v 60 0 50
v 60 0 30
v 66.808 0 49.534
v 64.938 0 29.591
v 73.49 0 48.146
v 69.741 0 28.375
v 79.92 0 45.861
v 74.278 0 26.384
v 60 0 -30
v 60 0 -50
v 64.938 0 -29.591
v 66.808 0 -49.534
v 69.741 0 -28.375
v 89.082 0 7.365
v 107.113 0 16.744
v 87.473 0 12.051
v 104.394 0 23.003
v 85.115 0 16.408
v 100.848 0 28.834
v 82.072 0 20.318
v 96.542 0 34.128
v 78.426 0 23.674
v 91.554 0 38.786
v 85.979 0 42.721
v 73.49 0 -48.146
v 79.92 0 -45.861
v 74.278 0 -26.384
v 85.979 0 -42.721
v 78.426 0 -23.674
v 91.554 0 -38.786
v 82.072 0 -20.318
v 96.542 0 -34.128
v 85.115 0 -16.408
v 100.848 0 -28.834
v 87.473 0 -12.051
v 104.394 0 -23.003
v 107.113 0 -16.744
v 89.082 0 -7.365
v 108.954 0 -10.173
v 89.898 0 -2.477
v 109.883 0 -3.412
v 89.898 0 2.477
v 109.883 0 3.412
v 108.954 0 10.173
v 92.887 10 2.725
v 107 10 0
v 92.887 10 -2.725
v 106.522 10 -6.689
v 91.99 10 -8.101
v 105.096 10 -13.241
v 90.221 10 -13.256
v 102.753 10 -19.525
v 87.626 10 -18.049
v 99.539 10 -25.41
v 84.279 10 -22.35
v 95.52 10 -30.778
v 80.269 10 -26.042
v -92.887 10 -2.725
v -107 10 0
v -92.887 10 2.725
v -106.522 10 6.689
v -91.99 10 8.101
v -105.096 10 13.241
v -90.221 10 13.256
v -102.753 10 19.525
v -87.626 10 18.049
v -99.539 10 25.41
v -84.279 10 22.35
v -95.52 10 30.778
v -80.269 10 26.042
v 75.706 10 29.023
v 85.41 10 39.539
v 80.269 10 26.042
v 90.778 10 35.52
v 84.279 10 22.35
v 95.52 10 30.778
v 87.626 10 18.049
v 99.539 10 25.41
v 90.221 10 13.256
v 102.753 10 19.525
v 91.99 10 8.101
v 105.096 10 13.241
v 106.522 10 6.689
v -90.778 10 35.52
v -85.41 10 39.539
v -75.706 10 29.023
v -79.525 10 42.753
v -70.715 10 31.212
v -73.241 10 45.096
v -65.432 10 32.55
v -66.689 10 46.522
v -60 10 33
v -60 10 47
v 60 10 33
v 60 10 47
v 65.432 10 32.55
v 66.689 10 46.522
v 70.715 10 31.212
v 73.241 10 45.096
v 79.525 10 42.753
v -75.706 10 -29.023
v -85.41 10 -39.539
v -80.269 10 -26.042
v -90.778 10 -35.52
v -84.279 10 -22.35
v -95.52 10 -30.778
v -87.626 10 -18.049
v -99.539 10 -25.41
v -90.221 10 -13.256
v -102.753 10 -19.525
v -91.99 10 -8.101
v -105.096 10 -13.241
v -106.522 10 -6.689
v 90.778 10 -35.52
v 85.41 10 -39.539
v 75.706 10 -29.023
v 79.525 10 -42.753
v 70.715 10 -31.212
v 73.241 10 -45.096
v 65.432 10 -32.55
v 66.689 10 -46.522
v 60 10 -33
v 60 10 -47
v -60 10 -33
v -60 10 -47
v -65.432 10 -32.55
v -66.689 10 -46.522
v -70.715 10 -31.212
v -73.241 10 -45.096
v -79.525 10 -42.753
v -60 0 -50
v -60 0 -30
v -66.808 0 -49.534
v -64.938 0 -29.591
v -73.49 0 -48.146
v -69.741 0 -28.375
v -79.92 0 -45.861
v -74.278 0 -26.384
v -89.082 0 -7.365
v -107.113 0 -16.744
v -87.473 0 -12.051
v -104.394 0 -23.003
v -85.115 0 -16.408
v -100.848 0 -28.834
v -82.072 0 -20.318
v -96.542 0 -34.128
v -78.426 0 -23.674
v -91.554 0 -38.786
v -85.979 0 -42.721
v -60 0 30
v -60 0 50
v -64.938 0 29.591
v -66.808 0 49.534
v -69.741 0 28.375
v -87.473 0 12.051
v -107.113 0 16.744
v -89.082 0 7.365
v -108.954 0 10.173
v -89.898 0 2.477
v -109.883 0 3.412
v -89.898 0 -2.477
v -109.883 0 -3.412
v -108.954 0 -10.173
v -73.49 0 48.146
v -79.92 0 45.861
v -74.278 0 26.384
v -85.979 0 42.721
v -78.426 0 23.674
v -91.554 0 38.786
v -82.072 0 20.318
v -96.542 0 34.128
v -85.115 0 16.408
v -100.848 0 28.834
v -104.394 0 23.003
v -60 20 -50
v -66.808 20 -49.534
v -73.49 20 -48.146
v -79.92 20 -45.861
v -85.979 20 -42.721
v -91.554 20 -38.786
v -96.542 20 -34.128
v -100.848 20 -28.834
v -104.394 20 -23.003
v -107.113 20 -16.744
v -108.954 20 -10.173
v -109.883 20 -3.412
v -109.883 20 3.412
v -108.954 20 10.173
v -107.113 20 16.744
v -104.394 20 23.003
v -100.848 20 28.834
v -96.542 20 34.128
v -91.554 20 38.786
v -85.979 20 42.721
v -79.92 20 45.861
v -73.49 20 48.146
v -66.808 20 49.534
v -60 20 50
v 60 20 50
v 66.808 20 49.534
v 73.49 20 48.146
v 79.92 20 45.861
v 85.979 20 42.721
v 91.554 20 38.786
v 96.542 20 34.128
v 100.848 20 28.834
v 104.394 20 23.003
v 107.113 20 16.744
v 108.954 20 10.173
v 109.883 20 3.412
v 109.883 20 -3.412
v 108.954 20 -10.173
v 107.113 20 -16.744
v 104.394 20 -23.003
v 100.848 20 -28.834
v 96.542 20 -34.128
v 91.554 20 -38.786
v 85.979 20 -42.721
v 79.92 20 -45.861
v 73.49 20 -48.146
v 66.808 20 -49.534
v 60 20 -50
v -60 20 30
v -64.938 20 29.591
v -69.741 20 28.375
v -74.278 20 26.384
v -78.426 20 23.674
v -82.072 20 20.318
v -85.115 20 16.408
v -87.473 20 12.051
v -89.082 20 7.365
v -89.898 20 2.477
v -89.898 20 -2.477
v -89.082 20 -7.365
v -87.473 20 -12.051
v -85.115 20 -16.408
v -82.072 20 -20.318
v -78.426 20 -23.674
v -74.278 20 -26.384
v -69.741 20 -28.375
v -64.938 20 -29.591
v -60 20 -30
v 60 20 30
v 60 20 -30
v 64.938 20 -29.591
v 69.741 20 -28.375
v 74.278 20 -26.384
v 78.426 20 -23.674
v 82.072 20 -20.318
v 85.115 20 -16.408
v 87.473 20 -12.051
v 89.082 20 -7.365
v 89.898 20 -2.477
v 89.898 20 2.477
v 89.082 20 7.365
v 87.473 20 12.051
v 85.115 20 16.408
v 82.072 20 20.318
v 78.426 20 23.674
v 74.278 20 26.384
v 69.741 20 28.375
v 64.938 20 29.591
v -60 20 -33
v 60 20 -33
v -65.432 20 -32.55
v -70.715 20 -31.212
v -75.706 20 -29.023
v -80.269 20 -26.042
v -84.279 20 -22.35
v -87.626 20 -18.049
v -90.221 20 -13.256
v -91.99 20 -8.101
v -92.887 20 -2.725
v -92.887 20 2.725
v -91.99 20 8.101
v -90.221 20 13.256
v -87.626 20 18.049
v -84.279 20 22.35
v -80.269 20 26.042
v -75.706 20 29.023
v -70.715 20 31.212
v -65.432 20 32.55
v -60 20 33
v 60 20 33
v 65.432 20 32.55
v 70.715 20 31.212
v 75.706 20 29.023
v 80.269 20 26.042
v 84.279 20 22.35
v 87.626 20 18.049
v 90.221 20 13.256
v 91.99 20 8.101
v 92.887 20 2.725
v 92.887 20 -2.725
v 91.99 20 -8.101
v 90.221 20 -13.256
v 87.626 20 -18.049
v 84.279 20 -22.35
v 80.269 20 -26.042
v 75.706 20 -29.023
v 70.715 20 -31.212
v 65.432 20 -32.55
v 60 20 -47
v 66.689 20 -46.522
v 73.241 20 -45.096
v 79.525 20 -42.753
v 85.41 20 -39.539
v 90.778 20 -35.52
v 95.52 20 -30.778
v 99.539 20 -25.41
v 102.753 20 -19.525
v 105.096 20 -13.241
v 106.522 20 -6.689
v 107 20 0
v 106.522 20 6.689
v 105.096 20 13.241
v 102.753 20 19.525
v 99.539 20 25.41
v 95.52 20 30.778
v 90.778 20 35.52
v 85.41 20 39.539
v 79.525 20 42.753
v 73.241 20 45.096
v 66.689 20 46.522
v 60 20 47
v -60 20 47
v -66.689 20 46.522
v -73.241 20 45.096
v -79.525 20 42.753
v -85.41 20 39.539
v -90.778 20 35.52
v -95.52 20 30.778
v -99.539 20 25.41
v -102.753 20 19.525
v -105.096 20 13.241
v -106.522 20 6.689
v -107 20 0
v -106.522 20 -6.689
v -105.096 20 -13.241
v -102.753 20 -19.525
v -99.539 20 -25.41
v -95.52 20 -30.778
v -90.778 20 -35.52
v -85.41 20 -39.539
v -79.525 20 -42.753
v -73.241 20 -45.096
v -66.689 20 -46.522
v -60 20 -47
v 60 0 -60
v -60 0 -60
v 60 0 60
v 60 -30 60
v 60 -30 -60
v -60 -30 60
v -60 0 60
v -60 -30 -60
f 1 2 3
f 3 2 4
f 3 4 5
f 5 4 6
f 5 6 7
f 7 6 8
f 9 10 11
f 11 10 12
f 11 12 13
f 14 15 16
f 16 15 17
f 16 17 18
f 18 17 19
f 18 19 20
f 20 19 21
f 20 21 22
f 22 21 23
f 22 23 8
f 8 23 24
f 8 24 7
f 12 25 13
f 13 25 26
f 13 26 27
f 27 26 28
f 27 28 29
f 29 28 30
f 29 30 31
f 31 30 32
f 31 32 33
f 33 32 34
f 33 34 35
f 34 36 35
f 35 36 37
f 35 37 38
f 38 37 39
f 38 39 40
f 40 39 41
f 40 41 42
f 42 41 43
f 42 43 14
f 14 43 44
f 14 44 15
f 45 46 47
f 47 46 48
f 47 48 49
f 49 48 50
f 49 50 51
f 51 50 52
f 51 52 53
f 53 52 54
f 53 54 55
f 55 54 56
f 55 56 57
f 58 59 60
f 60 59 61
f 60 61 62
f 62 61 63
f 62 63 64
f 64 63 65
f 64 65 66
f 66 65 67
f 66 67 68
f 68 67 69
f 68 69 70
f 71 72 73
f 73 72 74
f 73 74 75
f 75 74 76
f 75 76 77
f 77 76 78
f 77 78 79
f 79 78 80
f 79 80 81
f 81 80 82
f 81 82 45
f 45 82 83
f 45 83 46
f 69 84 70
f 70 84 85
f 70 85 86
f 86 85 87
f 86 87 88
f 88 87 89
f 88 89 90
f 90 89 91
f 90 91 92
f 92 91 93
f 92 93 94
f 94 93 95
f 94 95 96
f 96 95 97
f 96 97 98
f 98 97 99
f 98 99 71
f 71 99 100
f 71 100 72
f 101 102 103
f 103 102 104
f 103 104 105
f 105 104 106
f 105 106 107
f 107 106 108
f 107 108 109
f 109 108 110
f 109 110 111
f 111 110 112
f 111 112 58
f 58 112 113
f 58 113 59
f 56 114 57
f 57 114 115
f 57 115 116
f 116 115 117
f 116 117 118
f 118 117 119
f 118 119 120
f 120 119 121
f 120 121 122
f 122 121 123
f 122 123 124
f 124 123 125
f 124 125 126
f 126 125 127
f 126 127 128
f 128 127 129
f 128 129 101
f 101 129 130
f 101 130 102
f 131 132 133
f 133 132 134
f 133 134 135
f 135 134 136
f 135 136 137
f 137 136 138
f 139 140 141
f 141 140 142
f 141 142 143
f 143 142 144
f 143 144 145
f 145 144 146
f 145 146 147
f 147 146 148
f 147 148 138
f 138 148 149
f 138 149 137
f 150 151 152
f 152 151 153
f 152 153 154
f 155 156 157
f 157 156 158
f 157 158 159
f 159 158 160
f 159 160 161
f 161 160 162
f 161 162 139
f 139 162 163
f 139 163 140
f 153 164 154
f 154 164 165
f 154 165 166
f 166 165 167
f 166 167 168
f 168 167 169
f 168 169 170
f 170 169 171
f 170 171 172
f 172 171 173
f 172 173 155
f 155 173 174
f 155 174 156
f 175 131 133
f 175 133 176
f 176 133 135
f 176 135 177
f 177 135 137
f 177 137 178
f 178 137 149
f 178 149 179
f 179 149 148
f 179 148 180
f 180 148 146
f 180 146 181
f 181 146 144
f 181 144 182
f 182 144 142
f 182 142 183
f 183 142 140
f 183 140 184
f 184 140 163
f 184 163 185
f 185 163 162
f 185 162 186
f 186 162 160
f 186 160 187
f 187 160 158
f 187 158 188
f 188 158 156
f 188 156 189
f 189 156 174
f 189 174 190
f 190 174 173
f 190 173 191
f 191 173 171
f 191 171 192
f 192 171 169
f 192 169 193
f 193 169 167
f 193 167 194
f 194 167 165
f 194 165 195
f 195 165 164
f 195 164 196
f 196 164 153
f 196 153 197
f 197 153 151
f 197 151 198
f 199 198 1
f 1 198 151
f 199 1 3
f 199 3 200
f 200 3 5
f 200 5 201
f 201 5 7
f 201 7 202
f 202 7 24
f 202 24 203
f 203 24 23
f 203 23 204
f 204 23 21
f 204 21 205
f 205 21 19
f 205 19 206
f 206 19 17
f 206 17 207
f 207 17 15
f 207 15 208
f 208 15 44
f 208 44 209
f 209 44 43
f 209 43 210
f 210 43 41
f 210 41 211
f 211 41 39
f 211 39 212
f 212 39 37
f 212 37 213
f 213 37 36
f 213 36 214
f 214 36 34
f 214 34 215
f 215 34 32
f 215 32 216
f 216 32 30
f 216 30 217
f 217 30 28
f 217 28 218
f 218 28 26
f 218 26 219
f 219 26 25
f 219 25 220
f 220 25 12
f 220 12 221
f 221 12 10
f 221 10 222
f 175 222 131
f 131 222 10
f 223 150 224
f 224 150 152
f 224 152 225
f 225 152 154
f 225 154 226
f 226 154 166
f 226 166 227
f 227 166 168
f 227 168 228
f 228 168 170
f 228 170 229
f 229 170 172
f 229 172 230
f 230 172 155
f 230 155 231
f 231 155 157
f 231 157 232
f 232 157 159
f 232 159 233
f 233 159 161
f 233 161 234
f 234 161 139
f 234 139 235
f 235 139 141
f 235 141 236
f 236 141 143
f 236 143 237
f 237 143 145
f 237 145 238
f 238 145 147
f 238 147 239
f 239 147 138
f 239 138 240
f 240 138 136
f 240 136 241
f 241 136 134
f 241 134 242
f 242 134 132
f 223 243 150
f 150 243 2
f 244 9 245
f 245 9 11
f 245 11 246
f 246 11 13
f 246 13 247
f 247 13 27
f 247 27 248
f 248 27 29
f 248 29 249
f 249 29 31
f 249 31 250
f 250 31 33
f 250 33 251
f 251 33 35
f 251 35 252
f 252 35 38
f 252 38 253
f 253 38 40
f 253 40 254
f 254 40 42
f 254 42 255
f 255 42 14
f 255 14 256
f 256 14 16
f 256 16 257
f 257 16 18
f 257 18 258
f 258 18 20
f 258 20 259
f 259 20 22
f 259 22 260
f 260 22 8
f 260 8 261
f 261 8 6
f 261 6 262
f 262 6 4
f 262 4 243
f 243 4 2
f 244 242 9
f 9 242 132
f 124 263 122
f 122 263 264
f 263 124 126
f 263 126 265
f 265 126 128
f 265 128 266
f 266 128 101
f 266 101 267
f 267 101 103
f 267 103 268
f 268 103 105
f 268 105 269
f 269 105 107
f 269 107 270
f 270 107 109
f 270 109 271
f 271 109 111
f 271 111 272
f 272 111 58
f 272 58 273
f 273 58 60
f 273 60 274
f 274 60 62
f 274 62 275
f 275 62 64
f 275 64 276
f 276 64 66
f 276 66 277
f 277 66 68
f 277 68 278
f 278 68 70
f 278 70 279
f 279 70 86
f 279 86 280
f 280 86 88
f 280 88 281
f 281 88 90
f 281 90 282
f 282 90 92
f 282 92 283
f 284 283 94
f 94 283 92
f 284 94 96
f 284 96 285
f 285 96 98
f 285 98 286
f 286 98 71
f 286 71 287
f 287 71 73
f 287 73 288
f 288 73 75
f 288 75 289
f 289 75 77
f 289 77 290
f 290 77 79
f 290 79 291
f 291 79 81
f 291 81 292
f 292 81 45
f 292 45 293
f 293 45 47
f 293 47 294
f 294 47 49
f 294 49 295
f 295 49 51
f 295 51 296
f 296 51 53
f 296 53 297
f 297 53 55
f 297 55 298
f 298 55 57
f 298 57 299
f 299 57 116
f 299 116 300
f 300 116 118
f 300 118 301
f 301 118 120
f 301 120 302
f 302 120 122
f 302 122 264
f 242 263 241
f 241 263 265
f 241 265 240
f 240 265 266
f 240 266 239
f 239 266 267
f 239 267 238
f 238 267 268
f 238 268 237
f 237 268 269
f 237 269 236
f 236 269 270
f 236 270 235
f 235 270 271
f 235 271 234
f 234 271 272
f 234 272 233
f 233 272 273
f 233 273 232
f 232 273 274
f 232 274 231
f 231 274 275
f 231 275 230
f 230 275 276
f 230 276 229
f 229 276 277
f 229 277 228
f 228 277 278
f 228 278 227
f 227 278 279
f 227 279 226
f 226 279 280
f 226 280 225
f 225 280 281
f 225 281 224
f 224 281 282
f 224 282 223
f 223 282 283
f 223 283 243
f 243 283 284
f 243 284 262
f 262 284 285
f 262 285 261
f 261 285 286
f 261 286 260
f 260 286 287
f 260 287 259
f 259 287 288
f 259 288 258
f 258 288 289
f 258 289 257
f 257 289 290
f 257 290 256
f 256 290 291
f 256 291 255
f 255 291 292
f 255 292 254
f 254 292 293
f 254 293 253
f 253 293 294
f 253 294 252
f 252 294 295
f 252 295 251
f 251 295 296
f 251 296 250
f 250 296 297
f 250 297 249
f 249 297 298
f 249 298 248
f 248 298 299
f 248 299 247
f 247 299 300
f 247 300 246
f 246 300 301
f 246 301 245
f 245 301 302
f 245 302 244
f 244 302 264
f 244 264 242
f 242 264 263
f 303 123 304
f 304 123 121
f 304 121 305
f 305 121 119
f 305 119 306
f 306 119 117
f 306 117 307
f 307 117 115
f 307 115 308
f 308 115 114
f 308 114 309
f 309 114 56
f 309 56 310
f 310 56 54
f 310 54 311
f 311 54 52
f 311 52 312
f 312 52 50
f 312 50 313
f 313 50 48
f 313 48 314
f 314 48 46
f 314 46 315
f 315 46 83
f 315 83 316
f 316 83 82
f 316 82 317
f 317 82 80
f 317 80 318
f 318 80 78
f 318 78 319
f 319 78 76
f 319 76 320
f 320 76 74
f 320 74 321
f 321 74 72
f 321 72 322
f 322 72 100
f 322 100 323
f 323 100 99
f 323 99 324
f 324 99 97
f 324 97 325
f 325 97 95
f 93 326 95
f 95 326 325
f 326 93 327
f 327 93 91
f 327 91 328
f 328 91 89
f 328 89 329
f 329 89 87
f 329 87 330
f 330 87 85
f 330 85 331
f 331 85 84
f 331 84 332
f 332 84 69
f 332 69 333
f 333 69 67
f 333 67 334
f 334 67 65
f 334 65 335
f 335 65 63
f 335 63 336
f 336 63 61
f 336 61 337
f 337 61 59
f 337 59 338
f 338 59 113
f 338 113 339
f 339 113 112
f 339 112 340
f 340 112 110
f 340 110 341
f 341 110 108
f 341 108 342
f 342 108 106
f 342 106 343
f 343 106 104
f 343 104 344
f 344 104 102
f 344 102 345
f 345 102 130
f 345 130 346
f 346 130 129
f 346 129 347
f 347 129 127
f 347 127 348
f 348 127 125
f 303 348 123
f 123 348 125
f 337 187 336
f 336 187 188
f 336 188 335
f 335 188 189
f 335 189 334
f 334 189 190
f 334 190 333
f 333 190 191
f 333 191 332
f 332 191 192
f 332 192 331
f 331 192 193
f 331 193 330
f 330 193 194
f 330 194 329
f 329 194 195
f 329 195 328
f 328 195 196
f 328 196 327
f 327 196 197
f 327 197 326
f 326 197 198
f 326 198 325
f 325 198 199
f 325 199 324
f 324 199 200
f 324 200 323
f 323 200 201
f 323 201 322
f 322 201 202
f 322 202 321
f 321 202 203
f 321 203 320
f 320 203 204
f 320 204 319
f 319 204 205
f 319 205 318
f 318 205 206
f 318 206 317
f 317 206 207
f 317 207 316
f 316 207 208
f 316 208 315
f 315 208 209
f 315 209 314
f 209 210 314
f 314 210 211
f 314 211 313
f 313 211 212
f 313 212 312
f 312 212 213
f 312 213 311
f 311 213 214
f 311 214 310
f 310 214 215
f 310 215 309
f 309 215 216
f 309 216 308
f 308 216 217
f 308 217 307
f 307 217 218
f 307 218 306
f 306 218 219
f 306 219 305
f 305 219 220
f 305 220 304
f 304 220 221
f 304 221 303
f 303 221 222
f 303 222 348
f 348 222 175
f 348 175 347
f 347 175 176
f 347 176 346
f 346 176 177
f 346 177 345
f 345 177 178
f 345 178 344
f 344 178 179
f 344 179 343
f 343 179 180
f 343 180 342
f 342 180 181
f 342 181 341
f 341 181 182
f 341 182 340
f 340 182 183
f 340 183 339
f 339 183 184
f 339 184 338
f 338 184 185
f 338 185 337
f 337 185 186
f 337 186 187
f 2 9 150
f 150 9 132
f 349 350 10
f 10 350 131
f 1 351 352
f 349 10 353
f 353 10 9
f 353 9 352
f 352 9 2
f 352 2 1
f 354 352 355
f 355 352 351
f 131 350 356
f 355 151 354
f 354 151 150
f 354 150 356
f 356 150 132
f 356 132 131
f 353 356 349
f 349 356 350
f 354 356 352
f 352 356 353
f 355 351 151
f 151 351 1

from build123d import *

# Parameters (mm, degrees)
EXTRUDE_3_DEPTH = 10
EXTRUDE_4_DEPTH = 20
SKETCH_6_W      = 120
SKETCH_6_H      = 120
EXTRUDE_5_DEPTH = 30


with BuildPart() as part:
    # 草圖1 → 填料-伸長3 (new body)
    with BuildSketch(Plane(origin=(0, 0, 0), x_dir=(1, 0, 0), z_dir=(0, 1, 0))):
        with BuildLine():
            Line((-60, 50), (60, 50))
            ThreePointArc((60, 50), (110, 0), (60, -50))
            Line((60, -50), (-60, -50))
            ThreePointArc((-60, -50), (-110, 0), (-60, 50))
        make_face()
        with BuildLine():
            Line((-60, -30), (60, -30))
            ThreePointArc((60, -30), (90, 0), (60, 30))
            Line((60, 30), (-60, 30))
            ThreePointArc((-60, 30), (-90, 0), (-60, -30))
        make_face(mode=Mode.SUBTRACT)
    extrude(amount=EXTRUDE_3_DEPTH)

    # 草圖4 → 填料-伸長4 (add)
    # profile 1 of 2: a face of its own
    with BuildSketch(Plane(origin=(0, 0, 0), x_dir=(1, 0, 0), z_dir=(0, 1, 0))):
        with BuildLine():
            Line((-60, 50), (60, 50))
            ThreePointArc((60, 50), (110, 0), (60, -50))
            Line((60, -50), (-60, -50))
            ThreePointArc((-60, -50), (-110, 0), (-60, 50))
        make_face()
        with BuildLine():
            ThreePointArc((60, -47), (107, 0), (60, 47))
            Line((60, 47), (-60, 47))
            ThreePointArc((-60, 47), (-107, 0), (-60, -47))
            Line((-60, -47), (60, -47))
        make_face(mode=Mode.SUBTRACT)
    # profile 2 of 2: a face of its own
    with BuildSketch(Plane(origin=(0, 0, 0), x_dir=(1, 0, 0), z_dir=(0, 1, 0))):
        with BuildLine():
            Line((-60, 33), (60, 33))
            ThreePointArc((60, 33), (93, 0), (60, -33))
            Line((60, -33), (-60, -33))
            ThreePointArc((-60, -33), (-93, 0), (-60, 33))
        make_face()
        with BuildLine():
            ThreePointArc((-60, 30), (-90, 0), (-60, -30))
            Line((-60, -30), (60, -30))
            ThreePointArc((60, -30), (90, 0), (60, 30))
            Line((60, 30), (-60, 30))
        make_face(mode=Mode.SUBTRACT)
    extrude(amount=EXTRUDE_4_DEPTH)

    # 草圖6 → 填料-伸長5 (add)
    with BuildSketch(Plane(origin=(0, 0, 0), x_dir=(1, 0, 0), z_dir=(0, 1, 0))):
        Rectangle(SKETCH_6_W, SKETCH_6_H)
    extrude(amount=-EXTRUDE_5_DEPTH)


solid = part.part
